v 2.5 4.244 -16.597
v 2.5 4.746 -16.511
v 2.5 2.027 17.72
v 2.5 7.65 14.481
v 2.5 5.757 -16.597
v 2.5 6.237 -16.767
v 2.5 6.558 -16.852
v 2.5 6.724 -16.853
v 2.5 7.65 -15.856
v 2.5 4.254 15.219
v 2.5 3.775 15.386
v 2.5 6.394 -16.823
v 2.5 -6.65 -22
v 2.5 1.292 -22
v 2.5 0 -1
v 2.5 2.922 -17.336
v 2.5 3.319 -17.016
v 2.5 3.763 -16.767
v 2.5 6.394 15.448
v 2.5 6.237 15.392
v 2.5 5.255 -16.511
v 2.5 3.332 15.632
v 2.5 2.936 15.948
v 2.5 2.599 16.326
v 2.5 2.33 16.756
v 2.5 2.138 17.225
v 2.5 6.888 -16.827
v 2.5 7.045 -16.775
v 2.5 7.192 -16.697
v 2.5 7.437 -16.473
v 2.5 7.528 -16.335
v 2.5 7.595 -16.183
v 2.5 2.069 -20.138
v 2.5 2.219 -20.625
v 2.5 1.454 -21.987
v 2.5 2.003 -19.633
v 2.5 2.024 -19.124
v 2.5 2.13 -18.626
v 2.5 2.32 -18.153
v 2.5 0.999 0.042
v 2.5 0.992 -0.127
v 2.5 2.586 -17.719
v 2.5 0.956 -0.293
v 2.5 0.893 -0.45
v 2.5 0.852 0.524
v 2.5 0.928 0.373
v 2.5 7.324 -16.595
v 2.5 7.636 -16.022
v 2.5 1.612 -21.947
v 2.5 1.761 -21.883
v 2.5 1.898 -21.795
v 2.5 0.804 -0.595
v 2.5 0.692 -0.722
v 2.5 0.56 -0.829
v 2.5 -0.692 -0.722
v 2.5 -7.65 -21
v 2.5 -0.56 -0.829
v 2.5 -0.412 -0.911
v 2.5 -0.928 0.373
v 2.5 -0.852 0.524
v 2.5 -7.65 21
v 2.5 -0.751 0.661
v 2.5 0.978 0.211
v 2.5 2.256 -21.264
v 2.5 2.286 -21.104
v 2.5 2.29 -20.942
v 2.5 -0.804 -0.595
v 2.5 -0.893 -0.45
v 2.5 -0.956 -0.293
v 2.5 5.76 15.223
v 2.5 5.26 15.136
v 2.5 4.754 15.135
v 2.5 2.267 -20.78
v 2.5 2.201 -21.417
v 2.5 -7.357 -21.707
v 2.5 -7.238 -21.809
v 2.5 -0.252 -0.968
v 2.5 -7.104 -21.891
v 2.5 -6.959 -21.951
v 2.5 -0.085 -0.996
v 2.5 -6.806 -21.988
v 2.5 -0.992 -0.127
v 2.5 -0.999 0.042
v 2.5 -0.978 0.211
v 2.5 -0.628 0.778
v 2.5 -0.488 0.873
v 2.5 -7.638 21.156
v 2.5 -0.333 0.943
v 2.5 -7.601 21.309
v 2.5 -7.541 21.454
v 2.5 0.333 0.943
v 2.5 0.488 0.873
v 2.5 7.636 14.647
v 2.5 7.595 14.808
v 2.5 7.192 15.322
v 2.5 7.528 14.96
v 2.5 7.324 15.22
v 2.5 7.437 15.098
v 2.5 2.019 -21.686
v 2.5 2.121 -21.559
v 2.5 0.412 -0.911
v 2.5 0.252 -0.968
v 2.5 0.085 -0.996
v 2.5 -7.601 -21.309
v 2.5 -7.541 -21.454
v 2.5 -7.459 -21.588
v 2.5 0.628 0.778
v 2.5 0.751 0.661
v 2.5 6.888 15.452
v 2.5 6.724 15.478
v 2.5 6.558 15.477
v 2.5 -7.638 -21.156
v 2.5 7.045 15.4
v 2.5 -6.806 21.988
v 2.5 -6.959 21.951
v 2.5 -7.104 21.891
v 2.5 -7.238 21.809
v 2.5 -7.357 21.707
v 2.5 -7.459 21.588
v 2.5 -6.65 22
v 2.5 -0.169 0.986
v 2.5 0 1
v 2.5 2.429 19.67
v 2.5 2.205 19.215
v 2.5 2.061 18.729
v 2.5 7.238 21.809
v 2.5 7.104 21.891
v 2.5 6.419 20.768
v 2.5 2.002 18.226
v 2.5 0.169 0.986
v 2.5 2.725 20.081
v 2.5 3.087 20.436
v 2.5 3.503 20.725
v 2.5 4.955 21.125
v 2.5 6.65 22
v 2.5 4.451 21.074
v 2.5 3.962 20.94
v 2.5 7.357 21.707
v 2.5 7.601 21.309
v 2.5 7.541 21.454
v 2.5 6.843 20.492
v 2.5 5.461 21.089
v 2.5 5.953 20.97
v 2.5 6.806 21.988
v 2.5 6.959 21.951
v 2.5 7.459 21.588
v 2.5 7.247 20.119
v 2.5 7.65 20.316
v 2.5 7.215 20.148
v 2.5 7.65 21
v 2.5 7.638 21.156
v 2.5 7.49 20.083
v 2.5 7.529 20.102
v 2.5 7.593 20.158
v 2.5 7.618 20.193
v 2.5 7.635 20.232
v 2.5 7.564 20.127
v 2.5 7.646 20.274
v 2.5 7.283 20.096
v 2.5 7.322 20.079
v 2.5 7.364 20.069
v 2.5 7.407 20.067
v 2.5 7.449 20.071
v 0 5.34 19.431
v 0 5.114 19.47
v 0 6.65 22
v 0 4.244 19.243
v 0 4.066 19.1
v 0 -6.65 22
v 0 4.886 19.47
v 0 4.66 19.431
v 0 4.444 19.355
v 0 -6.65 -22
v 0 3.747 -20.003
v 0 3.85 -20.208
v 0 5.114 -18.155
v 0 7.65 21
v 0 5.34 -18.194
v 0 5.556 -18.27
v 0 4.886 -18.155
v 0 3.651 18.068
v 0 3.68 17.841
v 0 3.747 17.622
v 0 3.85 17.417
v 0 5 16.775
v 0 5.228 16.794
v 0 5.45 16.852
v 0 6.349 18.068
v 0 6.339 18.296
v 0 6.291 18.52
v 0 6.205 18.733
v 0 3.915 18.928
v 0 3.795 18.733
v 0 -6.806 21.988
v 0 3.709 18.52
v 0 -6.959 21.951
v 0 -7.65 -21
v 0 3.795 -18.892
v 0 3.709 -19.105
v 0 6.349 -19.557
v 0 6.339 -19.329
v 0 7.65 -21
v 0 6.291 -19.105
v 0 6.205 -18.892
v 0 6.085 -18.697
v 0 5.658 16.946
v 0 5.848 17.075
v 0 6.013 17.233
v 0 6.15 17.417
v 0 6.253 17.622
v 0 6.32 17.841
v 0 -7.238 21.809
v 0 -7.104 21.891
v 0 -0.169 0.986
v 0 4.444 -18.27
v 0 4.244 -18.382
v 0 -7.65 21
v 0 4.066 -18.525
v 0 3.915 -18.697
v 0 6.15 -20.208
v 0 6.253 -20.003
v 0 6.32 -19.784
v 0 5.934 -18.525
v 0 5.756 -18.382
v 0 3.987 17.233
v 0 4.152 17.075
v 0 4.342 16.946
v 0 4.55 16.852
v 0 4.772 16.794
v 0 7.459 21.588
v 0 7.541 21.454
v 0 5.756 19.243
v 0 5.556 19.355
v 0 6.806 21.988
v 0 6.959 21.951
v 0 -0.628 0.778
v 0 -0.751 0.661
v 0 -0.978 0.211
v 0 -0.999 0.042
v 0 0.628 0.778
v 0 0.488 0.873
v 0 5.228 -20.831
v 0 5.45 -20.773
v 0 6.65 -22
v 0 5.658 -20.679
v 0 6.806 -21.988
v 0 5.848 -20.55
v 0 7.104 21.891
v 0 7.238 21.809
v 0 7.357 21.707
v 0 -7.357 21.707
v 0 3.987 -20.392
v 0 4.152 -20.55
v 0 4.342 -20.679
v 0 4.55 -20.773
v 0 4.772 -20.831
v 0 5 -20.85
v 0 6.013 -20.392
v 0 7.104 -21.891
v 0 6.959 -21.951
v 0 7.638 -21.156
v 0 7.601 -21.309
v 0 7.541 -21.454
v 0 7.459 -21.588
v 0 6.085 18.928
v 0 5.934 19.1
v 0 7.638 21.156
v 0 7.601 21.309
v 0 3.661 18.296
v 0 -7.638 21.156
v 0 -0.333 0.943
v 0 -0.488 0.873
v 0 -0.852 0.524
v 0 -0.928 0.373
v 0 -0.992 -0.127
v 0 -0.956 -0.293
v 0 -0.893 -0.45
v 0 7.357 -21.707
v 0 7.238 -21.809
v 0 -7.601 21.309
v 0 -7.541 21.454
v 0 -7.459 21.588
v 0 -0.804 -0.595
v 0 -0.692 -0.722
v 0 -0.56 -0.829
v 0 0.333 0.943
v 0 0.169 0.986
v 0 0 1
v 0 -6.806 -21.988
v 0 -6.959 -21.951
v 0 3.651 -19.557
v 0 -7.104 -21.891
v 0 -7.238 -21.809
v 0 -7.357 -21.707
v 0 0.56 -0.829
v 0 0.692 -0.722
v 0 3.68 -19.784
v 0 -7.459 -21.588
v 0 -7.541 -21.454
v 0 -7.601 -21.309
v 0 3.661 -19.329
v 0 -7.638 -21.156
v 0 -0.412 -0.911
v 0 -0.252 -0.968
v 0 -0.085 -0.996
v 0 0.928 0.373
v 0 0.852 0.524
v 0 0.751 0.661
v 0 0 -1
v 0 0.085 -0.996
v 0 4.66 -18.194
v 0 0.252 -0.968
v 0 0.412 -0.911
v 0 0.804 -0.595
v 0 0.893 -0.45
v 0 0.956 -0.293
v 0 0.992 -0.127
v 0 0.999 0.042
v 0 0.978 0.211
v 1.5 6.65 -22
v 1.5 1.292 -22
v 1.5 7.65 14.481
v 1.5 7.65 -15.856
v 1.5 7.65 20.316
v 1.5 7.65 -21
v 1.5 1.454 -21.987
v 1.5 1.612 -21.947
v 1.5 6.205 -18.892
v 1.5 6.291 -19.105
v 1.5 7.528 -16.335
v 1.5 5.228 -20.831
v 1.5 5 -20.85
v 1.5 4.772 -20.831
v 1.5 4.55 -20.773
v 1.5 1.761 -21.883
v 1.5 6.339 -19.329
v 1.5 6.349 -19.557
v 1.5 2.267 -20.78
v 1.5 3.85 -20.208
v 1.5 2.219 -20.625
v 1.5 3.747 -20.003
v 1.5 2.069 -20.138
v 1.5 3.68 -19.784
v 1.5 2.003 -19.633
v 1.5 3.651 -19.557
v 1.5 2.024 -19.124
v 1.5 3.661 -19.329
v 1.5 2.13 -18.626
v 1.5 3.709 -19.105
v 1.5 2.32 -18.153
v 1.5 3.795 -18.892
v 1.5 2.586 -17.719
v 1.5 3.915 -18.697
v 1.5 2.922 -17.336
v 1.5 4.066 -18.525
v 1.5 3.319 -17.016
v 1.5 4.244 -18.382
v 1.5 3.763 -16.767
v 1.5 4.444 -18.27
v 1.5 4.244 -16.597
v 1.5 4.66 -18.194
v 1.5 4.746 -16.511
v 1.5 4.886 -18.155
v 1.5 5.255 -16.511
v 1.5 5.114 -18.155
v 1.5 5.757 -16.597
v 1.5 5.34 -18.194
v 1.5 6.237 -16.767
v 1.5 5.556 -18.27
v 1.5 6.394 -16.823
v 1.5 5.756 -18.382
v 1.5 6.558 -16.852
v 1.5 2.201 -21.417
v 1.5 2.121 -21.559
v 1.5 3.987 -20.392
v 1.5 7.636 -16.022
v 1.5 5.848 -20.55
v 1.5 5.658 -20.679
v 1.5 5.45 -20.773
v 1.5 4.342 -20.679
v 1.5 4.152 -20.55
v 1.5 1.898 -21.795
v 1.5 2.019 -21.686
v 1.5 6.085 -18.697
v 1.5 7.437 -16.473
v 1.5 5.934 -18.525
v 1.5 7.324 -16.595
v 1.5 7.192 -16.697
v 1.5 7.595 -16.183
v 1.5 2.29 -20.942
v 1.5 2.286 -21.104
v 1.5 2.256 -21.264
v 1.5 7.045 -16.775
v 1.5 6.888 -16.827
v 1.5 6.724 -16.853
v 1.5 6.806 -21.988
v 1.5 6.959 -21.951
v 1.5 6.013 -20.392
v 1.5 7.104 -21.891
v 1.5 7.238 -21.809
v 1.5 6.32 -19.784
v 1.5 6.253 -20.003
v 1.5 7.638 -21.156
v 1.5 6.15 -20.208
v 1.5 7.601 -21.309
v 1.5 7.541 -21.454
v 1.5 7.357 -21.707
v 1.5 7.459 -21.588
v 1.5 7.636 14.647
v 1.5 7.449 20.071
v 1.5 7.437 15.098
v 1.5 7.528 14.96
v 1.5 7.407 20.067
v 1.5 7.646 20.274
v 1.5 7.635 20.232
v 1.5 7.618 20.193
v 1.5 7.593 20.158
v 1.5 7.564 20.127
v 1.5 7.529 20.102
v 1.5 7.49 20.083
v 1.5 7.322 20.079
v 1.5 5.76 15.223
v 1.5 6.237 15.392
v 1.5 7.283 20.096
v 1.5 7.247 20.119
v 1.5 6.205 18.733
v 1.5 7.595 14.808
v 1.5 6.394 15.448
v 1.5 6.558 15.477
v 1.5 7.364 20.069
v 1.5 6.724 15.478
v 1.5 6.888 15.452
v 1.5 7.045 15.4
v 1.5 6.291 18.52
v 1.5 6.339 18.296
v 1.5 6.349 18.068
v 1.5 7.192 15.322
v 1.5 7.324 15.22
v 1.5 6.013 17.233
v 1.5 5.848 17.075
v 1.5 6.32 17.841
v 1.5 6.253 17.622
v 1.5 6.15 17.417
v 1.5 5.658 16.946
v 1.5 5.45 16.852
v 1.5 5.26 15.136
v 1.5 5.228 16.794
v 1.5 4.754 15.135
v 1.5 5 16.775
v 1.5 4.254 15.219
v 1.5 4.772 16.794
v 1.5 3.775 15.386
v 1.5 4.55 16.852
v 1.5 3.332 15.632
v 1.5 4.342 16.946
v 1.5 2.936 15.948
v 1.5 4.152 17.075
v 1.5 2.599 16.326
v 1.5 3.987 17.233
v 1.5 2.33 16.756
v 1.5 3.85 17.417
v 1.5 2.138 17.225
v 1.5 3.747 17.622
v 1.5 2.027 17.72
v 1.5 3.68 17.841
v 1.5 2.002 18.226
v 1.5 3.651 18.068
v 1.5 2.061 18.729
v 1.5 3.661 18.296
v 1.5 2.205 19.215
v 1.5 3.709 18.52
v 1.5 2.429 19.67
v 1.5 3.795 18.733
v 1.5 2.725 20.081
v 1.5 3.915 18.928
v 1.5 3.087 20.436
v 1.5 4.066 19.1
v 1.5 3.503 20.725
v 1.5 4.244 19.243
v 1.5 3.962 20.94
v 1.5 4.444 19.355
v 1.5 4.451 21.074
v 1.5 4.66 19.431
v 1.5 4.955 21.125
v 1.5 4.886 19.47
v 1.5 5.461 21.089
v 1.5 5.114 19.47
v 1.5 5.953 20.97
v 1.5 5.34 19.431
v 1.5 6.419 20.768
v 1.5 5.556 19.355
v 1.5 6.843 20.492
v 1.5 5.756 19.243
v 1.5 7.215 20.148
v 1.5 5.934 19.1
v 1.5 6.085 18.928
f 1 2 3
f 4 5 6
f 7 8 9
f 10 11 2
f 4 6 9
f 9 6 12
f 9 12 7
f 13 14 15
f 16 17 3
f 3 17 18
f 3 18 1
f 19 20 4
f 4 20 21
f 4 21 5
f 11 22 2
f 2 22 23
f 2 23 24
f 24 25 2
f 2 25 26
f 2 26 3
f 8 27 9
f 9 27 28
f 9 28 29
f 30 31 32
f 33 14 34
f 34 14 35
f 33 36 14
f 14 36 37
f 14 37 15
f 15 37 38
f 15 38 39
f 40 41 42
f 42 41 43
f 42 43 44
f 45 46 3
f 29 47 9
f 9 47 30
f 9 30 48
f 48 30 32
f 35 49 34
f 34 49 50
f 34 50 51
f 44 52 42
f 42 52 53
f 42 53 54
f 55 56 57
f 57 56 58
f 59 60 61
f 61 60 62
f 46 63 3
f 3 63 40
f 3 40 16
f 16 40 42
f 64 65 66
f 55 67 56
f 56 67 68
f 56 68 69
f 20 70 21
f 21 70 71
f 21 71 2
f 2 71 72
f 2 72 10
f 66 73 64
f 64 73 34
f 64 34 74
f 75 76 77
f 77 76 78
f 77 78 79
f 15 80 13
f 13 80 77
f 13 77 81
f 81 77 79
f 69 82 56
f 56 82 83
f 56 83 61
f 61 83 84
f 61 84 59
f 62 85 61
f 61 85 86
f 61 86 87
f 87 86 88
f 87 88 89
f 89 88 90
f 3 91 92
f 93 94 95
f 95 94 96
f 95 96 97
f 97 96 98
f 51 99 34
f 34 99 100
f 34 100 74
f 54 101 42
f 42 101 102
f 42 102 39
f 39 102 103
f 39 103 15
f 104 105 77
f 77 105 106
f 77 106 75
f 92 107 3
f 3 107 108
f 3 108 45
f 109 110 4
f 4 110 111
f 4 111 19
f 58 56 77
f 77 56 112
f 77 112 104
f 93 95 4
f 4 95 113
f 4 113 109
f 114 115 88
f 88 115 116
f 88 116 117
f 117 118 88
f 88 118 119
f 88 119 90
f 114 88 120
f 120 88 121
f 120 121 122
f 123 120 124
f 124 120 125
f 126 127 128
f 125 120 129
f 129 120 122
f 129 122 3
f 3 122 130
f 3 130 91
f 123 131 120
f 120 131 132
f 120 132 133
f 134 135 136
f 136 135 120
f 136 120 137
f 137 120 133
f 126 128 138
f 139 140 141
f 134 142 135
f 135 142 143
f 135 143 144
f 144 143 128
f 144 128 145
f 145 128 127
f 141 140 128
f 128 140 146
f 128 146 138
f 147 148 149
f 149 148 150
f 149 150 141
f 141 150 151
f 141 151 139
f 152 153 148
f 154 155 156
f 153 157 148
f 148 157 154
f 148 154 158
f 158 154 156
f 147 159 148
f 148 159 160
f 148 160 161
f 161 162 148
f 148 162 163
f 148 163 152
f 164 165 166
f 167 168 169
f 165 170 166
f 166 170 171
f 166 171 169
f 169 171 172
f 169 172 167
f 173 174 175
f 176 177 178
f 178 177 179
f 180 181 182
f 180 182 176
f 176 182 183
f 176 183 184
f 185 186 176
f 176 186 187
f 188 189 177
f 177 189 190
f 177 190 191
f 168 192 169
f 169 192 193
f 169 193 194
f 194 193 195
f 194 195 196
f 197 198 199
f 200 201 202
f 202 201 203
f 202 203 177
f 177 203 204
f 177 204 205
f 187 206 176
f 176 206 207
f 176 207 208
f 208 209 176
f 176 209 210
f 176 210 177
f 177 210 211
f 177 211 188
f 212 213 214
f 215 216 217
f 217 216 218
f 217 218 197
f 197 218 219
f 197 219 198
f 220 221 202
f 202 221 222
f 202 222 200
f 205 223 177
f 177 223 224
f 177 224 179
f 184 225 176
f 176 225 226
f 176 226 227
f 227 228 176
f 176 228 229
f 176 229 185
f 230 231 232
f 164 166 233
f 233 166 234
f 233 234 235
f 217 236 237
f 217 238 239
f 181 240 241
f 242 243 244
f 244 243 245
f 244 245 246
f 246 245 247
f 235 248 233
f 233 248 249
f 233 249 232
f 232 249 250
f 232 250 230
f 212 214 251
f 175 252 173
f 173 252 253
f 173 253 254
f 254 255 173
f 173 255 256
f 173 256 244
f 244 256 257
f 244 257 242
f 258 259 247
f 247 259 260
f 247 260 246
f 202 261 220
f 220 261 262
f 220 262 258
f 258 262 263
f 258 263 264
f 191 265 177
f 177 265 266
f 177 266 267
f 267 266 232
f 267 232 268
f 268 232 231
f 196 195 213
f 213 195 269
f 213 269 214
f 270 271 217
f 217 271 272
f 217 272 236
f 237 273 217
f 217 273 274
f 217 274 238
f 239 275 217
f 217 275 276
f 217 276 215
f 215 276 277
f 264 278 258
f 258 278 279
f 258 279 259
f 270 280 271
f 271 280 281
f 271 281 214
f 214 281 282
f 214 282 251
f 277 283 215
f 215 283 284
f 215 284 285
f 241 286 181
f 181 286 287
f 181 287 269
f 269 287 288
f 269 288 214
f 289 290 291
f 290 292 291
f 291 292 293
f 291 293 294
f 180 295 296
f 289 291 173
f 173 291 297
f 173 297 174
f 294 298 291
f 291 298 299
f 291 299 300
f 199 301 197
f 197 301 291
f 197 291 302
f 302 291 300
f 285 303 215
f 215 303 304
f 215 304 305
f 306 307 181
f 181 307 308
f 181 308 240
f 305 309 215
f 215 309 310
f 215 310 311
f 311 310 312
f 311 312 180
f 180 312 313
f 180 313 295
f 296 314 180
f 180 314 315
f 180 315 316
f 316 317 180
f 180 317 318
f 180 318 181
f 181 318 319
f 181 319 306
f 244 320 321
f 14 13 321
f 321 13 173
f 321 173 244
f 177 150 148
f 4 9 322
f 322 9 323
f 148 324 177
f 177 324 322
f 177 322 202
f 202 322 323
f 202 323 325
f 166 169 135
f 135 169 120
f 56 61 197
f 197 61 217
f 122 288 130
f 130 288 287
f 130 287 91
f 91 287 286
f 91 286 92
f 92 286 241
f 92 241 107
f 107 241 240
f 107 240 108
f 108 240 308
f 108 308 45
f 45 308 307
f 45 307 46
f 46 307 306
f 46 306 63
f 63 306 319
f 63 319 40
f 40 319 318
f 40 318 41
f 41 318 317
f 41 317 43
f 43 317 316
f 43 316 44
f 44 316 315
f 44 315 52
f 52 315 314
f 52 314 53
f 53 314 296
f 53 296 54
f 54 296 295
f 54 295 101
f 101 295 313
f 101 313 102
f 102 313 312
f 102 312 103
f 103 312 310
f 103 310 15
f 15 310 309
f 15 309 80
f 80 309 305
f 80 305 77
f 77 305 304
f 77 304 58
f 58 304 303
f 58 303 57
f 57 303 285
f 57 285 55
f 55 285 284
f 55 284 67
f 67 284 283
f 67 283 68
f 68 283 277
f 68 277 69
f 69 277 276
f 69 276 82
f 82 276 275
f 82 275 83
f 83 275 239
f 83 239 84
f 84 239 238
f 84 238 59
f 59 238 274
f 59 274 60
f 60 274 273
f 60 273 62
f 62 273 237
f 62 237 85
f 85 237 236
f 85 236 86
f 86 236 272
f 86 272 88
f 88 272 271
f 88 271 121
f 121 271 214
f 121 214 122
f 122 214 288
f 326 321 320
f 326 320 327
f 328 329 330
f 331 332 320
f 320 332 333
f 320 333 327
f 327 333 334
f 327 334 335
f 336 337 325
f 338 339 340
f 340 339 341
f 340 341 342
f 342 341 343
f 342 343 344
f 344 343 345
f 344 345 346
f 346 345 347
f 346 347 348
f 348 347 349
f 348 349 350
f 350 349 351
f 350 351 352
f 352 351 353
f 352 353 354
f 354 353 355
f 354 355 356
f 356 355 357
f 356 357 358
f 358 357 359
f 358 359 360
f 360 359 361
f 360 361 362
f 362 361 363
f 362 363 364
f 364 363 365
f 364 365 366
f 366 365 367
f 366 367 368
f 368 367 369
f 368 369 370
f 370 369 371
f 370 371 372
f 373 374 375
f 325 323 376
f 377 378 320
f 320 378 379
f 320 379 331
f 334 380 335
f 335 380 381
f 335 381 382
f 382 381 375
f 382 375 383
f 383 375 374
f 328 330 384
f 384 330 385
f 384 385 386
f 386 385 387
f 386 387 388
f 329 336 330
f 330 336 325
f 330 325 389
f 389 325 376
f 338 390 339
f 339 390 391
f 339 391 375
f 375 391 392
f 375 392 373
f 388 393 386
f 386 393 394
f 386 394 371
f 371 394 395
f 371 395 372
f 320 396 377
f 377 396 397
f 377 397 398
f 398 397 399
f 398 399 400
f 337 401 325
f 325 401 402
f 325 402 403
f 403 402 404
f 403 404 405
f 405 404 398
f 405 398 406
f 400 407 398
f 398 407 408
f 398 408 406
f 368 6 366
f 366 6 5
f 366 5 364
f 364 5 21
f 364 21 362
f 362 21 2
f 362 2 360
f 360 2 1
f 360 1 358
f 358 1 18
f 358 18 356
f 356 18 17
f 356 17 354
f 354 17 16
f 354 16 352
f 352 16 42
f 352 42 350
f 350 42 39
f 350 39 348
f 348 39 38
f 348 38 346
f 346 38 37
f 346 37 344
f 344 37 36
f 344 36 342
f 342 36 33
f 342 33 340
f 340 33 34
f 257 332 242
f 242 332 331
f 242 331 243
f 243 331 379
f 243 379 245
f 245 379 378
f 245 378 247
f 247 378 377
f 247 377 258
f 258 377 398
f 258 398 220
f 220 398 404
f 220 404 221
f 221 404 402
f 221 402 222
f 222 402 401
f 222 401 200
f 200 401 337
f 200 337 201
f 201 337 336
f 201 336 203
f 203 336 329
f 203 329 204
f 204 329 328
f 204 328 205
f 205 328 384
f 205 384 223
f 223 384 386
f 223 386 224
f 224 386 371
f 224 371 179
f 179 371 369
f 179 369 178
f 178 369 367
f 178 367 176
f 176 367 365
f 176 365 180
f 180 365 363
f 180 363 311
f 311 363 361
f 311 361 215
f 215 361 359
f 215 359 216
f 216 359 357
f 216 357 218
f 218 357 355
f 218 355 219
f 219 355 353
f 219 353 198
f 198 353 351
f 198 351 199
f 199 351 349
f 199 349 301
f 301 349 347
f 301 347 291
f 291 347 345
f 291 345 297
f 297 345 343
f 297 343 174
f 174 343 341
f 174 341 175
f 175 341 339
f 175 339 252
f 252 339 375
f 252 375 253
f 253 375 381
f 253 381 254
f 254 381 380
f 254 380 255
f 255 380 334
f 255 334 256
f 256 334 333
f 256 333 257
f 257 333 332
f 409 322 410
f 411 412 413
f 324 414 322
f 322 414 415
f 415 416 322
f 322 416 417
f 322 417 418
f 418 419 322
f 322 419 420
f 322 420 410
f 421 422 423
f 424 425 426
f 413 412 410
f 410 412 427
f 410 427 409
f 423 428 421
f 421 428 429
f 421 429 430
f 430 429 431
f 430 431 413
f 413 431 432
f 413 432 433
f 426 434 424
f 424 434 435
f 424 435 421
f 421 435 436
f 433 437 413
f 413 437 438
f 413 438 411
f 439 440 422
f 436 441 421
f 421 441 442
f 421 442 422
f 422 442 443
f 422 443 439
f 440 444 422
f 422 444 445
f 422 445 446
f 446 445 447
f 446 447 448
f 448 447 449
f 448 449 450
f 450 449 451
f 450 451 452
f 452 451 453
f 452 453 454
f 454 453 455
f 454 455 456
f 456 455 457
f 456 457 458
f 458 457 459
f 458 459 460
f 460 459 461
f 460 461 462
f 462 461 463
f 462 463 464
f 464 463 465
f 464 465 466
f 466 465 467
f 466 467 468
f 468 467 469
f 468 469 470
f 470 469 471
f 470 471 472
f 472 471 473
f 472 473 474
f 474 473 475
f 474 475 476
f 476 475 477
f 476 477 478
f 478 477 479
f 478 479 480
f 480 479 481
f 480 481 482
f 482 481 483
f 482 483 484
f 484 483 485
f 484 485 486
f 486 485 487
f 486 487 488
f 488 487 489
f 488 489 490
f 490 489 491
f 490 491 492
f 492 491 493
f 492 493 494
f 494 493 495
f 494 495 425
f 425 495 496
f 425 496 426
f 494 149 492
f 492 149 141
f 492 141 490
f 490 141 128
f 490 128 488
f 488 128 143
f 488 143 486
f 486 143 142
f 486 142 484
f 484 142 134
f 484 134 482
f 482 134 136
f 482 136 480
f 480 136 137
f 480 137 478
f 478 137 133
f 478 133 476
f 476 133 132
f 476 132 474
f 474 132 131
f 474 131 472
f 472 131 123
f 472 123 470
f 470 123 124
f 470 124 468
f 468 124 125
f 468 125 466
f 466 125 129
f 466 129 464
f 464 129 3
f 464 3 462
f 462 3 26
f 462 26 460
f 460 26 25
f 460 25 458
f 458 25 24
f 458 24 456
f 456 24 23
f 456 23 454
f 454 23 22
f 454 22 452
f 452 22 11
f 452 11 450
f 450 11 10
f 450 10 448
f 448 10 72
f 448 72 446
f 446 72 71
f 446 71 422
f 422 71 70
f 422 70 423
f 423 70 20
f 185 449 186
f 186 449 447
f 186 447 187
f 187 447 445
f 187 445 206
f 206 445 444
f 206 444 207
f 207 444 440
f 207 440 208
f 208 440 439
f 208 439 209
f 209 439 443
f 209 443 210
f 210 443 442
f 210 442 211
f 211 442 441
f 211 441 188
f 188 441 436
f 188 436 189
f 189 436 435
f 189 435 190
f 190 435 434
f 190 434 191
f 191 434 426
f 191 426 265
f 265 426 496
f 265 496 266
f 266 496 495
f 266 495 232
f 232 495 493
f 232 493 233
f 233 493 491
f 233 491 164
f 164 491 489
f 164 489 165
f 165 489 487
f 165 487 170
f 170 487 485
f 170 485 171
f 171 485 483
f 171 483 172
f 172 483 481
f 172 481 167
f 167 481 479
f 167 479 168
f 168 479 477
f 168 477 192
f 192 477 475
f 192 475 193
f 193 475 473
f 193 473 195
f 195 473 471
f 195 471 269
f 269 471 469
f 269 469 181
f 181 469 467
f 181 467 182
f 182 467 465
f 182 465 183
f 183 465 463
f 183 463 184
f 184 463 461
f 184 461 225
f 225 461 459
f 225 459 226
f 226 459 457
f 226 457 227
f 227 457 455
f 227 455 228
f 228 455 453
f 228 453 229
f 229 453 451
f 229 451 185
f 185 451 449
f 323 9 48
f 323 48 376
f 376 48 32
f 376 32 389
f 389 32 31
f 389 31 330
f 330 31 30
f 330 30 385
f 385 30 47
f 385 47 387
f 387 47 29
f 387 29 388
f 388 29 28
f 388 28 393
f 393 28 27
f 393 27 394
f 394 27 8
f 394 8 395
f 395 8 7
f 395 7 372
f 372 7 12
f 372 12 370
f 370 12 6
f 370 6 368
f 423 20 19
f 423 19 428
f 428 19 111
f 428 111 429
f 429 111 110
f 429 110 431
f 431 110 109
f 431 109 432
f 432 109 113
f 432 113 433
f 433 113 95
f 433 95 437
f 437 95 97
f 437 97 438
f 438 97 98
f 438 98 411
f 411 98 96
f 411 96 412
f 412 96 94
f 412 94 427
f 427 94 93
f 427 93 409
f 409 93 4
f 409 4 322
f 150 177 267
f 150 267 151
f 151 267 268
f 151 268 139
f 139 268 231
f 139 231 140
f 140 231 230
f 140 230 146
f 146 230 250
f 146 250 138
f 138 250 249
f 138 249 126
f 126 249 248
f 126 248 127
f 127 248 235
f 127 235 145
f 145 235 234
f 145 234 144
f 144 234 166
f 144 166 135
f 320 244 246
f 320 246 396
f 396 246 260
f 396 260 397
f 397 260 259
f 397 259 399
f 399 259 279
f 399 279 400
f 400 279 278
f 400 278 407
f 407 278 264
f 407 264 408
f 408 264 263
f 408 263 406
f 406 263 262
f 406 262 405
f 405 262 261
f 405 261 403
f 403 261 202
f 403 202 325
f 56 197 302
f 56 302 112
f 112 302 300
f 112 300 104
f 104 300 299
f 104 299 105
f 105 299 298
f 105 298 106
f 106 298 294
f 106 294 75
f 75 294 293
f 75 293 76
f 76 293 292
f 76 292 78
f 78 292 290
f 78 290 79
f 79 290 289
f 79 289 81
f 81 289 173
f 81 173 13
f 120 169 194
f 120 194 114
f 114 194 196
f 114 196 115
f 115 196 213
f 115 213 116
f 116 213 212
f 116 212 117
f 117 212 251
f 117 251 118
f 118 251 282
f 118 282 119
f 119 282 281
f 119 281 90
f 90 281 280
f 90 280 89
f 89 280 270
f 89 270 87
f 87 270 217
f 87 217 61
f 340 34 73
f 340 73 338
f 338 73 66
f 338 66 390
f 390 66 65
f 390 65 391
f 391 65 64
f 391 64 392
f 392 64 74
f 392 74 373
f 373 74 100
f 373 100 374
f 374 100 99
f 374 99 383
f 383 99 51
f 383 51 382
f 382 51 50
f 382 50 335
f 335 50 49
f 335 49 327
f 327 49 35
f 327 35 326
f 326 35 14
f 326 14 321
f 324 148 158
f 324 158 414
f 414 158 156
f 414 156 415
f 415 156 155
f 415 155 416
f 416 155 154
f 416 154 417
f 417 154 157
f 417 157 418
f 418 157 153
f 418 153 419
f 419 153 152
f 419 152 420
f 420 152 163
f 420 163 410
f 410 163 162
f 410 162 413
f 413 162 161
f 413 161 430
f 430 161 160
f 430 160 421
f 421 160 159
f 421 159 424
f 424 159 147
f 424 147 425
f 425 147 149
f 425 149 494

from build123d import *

# Parameters (mm, degrees)
SKETCH1_W                                          = 44
SKETCH1_H                                          = 15.3
SKETCH1_R                                          = 1
BOSS_EXTRUDE1_DEPTH                                = 2.5
CBORE_FOR_M2_5_PAN_HEAD_MACHINE_SCREW1_D           = 2.7
CBORE_FOR_M2_5_PAN_HEAD_MACHINE_SCREW1_CBORE_D     = 6
CBORE_FOR_M2_5_PAN_HEAD_MACHINE_SCREW1_CBORE_DEPTH = 1
CUT_EXTRUDE1_DEPTH                                 = 1
FILLET1_R                                          = 1
FILLET2_R                                          = 0.25


with BuildPart() as part:
    # Sketch1 → Boss-Extrude1 (new body)
    with BuildSketch(Plane(origin=(0, 0, 0), x_dir=(0, 0, -1), z_dir=(1, 0, 0))):
        Rectangle(SKETCH1_W, SKETCH1_H)
        Circle(SKETCH1_R, mode=Mode.SUBTRACT)
    extrude(amount=BOSS_EXTRUDE1_DEPTH)

    # CBORE for M2.5 Pan Head Machine Screw1 (through all)
    with Locations(Plane(origin=(2.5, 0, 0), x_dir=(0, 0, -1), z_dir=(1, 0, 0))):
        with Locations((-18.125, 5), (19.5, 5)):
            CounterBoreHole(CBORE_FOR_M2_5_PAN_HEAD_MACHINE_SCREW1_D / 2, CBORE_FOR_M2_5_PAN_HEAD_MACHINE_SCREW1_CBORE_D / 2, CBORE_FOR_M2_5_PAN_HEAD_MACHINE_SCREW1_CBORE_DEPTH)

    # Sketch5 → Cut-Extrude1 (cut)
    with BuildSketch(Plane(origin=(2.5, 0, 0), x_dir=(0, 0, -1), z_dir=(1, 0, 0))):
        with BuildLine():
            ThreePointArc((22, 6.658312395), (21.515075982, 7.222491571), (20.906236111, 7.65))
            Line((20.906236111, 7.65), (22, 7.65))
            Line((22, 7.65), (22, 6.658312395))
        make_face()
    extrude(amount=-CUT_EXTRUDE1_DEPTH, mode=Mode.SUBTRACT)

    # Fillet1
    fillet1_edges = [part.edges().sort_by_distance(p)[0] for p in [
        (2, 3.341687605, -22),
        (2, 7.65, -18.093763889),
        (2, 7.65, 16.718763889),
        (0.75, 7.65, -22),
        (1.25, -7.65, -22),
        (1.25, -7.65, 22),
        (1.25, 7.65, 22),
    ]]
    fillet(fillet1_edges, radius=FILLET1_R)

    # Fillet2
    fillet2_edges = [part.edges().sort_by_distance(p)[0] for p in [
        (2, 7.65, 19.531236111),
    ]]
    fillet(fillet2_edges, radius=FILLET2_R)


solid = part.part
